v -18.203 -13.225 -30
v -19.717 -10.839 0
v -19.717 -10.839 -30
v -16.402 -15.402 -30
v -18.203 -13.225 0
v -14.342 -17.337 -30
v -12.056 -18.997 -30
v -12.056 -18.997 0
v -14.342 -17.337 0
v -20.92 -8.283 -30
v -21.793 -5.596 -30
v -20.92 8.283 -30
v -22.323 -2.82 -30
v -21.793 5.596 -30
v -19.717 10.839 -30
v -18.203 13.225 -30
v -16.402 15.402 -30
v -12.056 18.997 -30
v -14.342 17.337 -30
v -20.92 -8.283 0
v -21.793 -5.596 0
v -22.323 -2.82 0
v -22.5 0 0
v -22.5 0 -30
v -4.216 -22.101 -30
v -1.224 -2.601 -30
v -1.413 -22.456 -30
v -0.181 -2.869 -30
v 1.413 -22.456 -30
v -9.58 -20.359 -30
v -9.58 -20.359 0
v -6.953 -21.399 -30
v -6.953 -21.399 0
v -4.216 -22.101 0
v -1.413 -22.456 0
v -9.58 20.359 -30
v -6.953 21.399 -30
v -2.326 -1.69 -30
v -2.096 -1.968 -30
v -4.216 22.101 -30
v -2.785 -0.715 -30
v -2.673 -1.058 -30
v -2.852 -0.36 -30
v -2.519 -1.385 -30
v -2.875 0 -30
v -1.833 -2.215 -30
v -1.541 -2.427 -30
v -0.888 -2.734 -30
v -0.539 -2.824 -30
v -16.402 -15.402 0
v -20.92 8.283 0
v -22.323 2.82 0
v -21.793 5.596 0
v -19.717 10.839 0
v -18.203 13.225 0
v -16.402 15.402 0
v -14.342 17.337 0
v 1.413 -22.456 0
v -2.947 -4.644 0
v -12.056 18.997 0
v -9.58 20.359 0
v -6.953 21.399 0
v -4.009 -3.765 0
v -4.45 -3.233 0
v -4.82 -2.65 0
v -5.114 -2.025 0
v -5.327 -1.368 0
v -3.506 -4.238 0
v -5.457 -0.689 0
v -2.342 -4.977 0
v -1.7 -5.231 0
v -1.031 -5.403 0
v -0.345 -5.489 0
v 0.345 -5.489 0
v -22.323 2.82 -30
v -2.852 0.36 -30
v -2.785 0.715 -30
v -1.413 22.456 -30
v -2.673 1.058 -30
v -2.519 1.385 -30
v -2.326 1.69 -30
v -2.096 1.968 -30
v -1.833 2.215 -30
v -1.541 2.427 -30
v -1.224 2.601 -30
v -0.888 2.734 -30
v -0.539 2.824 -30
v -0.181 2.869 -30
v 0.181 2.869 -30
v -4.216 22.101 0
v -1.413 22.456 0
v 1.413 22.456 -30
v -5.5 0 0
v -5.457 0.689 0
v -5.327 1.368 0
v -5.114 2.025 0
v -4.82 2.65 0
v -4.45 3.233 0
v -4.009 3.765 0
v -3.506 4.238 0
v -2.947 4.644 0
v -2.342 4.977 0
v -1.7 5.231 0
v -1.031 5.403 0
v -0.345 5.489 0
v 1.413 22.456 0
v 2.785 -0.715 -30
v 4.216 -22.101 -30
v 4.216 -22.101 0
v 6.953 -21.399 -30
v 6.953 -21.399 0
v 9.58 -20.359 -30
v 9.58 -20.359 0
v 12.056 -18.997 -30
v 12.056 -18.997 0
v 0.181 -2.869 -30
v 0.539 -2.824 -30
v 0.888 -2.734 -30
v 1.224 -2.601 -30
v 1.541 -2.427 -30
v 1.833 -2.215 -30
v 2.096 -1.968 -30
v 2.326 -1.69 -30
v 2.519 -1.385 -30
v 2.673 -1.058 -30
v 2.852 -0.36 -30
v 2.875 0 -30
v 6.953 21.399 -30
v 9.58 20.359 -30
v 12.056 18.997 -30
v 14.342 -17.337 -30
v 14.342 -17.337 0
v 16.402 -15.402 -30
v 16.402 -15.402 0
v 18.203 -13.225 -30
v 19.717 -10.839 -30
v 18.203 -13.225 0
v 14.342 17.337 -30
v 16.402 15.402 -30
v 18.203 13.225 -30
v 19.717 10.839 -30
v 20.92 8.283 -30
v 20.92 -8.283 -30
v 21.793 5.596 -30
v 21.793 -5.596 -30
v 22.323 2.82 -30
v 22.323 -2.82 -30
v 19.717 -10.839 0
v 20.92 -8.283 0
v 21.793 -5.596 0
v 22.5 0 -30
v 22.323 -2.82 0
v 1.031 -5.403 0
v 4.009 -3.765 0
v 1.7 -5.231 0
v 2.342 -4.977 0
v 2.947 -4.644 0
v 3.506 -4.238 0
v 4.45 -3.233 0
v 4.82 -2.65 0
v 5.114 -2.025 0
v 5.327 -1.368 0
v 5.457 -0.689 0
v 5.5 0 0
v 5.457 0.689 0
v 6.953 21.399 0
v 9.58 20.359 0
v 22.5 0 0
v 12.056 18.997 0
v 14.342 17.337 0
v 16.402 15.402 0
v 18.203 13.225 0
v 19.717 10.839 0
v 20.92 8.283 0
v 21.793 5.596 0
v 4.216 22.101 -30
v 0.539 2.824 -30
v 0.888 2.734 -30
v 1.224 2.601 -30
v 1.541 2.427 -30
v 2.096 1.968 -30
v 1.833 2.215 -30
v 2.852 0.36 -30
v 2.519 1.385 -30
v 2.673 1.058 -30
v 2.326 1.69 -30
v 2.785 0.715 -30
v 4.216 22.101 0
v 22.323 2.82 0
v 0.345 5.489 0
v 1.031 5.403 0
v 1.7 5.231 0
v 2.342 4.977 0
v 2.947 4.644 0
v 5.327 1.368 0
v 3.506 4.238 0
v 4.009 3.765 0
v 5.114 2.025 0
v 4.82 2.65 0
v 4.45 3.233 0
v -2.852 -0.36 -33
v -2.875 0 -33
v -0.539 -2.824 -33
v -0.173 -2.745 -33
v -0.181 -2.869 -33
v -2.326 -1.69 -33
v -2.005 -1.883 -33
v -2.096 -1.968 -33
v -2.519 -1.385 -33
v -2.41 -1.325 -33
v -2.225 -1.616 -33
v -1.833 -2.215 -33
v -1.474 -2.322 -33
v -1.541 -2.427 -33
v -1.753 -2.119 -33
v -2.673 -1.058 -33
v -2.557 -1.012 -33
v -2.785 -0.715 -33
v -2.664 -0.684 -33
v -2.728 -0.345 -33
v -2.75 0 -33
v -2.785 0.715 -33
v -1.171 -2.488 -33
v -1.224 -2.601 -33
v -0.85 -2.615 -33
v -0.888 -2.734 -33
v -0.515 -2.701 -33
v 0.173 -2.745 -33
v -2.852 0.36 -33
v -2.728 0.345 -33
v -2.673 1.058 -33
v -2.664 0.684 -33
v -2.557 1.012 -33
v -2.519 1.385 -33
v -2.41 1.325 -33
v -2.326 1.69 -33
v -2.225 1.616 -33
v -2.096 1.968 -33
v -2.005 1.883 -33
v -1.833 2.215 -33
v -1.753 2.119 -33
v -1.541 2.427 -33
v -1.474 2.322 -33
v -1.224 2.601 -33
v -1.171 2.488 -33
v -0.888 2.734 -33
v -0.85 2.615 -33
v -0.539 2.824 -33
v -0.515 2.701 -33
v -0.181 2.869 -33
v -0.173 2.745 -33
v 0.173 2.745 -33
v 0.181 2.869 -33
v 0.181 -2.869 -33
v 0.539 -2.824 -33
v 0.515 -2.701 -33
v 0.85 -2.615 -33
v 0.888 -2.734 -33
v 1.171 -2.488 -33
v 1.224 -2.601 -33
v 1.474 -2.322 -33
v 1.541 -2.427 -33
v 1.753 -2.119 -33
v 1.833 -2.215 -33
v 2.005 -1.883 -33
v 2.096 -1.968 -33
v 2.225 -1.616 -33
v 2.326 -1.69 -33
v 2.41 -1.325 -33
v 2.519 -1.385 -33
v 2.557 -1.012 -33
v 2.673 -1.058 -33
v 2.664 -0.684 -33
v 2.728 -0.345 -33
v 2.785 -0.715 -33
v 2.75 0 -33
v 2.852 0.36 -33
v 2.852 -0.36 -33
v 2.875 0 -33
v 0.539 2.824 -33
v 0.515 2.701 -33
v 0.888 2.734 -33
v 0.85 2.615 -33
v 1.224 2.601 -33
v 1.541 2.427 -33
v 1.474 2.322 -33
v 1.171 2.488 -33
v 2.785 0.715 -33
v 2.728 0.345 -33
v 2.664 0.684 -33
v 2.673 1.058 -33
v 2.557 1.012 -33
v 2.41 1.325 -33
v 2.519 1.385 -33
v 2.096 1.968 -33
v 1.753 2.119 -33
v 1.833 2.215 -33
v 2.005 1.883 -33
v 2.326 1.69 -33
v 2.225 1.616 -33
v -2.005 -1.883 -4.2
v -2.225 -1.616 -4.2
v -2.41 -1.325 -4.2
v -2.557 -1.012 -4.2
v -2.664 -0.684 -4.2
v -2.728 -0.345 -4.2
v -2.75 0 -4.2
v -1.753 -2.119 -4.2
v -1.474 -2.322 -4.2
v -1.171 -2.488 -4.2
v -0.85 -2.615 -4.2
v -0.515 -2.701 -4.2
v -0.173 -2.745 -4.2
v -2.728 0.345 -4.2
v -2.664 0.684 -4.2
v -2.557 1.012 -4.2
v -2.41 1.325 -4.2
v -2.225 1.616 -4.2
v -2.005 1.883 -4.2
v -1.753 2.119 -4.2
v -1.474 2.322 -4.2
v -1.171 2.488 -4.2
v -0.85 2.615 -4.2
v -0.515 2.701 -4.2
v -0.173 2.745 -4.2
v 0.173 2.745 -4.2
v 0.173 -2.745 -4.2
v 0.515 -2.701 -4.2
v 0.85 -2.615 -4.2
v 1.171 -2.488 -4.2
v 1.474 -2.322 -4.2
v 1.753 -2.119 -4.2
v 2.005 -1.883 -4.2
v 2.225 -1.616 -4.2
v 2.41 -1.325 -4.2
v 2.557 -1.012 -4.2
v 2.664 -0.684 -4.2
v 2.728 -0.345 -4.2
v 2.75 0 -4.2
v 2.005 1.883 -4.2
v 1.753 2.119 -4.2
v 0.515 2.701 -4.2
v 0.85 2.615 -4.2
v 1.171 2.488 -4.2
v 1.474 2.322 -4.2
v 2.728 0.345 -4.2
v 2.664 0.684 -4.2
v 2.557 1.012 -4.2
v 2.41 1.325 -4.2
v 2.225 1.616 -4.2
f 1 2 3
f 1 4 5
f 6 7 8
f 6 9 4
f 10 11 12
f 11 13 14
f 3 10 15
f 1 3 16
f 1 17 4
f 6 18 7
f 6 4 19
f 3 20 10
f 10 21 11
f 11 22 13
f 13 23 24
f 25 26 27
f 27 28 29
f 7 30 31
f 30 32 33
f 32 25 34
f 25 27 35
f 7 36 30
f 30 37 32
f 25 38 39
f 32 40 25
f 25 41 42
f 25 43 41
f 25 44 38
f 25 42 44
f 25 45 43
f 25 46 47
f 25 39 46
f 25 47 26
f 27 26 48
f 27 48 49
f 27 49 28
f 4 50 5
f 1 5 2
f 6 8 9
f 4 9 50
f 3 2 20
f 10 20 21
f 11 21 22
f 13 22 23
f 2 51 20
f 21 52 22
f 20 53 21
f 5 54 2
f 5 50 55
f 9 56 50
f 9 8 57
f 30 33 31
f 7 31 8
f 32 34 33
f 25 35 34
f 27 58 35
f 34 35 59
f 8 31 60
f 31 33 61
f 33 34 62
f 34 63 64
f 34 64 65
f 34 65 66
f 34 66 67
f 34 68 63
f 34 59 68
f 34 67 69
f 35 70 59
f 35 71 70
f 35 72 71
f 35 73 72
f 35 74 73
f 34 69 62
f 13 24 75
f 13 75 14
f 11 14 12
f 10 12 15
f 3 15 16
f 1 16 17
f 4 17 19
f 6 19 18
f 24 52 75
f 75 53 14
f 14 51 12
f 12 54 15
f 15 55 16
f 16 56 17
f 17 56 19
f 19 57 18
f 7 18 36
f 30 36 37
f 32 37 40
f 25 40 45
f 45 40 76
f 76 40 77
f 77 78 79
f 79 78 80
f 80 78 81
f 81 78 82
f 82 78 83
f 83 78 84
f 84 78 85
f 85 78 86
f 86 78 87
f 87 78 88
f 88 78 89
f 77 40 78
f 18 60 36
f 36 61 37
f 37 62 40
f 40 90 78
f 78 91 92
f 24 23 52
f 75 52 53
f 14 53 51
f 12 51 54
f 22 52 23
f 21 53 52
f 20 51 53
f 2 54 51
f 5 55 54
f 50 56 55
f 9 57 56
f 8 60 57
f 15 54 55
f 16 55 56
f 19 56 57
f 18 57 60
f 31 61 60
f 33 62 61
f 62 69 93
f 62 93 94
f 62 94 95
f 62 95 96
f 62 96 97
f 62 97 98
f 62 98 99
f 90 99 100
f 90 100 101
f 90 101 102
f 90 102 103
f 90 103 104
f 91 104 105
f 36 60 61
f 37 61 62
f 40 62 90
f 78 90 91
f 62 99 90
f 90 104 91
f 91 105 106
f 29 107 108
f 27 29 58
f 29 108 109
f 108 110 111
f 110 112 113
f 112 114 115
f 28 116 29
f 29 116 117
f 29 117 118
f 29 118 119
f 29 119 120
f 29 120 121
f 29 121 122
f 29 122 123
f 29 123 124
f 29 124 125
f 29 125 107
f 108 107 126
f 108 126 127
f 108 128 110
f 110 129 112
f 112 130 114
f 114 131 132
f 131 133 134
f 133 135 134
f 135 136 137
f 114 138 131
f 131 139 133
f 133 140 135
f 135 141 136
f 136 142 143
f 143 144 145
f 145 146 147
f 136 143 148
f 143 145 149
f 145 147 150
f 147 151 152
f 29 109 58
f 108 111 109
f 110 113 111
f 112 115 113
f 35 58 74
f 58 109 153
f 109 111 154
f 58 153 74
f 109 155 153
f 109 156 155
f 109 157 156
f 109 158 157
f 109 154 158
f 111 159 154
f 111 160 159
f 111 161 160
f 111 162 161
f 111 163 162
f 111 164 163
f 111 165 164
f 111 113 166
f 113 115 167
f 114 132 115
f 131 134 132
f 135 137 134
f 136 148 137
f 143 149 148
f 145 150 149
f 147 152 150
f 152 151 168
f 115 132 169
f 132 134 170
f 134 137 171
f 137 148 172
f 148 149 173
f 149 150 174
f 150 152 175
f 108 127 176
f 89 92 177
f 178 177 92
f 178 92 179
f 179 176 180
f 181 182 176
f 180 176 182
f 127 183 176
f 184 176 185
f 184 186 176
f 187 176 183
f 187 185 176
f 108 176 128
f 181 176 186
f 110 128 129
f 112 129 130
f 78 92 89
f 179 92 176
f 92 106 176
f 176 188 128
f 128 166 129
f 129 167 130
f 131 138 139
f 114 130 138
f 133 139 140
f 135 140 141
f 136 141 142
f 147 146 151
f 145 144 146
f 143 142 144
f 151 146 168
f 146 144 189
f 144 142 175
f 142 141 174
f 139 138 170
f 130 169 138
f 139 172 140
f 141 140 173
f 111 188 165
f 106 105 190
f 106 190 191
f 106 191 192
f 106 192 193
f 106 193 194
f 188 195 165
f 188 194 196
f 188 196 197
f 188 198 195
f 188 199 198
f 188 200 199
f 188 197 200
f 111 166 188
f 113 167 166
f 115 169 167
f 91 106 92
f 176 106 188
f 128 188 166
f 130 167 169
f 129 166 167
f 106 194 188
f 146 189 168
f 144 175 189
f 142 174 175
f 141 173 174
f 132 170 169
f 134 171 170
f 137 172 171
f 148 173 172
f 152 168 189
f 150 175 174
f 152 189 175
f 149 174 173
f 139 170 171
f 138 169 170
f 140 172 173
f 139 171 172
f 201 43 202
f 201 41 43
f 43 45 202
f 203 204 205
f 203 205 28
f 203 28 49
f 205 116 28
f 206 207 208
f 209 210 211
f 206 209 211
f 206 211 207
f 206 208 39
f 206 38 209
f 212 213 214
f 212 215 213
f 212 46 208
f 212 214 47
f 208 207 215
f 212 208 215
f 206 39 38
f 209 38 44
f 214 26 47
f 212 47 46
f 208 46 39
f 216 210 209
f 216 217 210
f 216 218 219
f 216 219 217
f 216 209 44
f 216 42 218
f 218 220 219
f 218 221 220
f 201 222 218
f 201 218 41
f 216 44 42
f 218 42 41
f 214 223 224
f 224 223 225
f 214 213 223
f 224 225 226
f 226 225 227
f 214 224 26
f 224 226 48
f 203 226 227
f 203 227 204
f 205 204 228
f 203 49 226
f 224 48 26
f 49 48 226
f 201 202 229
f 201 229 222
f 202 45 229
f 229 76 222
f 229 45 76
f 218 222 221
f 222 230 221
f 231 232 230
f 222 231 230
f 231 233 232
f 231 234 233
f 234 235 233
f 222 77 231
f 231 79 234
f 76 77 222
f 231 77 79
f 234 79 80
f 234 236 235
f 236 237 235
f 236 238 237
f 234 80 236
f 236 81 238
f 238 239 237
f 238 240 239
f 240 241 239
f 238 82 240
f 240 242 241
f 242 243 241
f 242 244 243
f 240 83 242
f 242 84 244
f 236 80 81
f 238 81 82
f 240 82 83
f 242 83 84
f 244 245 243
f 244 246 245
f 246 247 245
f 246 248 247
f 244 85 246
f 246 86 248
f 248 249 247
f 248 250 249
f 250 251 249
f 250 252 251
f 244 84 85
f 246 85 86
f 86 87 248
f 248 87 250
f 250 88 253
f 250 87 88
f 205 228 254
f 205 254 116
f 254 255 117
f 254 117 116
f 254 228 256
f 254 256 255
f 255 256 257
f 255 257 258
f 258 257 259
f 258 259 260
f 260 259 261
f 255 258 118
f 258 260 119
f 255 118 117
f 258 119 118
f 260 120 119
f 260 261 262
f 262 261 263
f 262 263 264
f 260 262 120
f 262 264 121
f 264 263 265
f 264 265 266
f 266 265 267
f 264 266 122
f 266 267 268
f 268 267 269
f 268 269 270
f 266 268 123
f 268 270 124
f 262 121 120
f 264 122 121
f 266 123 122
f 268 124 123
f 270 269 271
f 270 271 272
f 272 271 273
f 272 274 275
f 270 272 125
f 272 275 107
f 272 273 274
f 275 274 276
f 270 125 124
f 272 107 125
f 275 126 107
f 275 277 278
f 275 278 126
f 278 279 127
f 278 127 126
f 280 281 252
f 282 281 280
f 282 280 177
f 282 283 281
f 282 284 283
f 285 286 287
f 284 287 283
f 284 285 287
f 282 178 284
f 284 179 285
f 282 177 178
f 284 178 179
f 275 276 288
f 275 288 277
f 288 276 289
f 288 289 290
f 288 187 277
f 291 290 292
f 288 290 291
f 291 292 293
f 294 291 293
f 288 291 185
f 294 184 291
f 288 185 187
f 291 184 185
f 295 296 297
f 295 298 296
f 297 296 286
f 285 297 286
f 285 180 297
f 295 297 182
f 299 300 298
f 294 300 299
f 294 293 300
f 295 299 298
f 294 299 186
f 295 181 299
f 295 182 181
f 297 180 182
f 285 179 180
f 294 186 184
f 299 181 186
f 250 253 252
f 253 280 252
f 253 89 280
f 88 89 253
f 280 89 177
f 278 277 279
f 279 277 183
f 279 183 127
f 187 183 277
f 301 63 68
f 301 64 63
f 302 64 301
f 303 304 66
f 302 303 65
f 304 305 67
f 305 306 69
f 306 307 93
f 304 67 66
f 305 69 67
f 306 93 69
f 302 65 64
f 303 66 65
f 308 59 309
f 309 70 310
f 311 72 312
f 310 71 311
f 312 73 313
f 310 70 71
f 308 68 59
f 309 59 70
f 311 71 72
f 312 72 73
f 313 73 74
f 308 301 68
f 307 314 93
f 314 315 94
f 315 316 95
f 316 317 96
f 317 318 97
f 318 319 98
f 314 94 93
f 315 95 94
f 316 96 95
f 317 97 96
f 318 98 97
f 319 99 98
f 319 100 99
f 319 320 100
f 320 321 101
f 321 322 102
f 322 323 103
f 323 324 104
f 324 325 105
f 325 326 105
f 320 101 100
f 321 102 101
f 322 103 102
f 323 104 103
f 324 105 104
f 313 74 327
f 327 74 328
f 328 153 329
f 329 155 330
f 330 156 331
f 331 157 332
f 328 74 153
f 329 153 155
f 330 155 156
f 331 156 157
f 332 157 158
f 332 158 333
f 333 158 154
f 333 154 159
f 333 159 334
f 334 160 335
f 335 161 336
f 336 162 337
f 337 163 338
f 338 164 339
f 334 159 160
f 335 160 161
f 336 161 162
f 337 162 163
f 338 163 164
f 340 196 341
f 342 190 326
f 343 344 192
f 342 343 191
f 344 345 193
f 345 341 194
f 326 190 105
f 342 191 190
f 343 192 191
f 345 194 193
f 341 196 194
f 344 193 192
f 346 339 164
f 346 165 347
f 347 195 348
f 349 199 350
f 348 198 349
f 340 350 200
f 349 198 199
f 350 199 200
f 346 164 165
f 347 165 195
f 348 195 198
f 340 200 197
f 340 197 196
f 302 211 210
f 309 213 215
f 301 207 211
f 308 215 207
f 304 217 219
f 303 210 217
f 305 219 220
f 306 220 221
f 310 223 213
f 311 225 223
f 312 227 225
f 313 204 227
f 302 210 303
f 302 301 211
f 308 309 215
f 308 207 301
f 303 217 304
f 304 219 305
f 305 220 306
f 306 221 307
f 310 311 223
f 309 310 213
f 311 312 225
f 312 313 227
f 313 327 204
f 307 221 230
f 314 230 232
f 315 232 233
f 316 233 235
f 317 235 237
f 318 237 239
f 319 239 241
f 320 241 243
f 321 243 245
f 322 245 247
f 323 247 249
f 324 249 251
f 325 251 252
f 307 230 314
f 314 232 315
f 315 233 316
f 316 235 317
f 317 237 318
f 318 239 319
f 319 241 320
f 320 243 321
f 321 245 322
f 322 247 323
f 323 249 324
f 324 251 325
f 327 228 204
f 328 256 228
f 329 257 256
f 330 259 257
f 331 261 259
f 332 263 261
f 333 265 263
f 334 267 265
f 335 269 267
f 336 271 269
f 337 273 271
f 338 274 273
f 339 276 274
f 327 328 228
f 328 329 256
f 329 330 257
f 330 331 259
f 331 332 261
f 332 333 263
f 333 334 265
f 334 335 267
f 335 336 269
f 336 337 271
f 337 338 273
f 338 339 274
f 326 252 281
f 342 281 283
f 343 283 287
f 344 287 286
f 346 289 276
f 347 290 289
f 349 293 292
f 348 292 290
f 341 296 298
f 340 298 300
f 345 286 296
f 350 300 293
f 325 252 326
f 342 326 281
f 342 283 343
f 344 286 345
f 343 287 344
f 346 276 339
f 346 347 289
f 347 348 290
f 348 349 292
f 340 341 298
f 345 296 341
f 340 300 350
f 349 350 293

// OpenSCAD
$fn = 50;


difference() {
	union() {
		translate(v = [0, 0, -30.0000000000]) {
			cylinder(h = 30, r = 22.5000000000);
		}
		#translate(v = [0, 0, -33.0000000000]) {
			cylinder(h = 33, r = 2.8750000000);
		}
	}
	union() {
		translate(v = [0, 0, 0]) {
			rotate(a = [0, 0, 0]) {
				difference() {
					union() {
						translate(v = [0, 0, -33.0000000000]) {
							cylinder(h = 33, r = 2.2500000000);
						}
						translate(v = [0, 0, -4.2000000000]) {
							cylinder(h = 4.2000000000, r1 = 2.7500000000, r2 = 5.5000000000);
						}
						translate(v = [0, 0, -33.0000000000]) {
							cylinder(h = 33, r = 2.7500000000);
						}
						translate(v = [0, 0, -33.0000000000]) {
							cylinder(h = 33, r = 2.2500000000);
						}
					}
					union();
				}
			}
		}
	}
}
